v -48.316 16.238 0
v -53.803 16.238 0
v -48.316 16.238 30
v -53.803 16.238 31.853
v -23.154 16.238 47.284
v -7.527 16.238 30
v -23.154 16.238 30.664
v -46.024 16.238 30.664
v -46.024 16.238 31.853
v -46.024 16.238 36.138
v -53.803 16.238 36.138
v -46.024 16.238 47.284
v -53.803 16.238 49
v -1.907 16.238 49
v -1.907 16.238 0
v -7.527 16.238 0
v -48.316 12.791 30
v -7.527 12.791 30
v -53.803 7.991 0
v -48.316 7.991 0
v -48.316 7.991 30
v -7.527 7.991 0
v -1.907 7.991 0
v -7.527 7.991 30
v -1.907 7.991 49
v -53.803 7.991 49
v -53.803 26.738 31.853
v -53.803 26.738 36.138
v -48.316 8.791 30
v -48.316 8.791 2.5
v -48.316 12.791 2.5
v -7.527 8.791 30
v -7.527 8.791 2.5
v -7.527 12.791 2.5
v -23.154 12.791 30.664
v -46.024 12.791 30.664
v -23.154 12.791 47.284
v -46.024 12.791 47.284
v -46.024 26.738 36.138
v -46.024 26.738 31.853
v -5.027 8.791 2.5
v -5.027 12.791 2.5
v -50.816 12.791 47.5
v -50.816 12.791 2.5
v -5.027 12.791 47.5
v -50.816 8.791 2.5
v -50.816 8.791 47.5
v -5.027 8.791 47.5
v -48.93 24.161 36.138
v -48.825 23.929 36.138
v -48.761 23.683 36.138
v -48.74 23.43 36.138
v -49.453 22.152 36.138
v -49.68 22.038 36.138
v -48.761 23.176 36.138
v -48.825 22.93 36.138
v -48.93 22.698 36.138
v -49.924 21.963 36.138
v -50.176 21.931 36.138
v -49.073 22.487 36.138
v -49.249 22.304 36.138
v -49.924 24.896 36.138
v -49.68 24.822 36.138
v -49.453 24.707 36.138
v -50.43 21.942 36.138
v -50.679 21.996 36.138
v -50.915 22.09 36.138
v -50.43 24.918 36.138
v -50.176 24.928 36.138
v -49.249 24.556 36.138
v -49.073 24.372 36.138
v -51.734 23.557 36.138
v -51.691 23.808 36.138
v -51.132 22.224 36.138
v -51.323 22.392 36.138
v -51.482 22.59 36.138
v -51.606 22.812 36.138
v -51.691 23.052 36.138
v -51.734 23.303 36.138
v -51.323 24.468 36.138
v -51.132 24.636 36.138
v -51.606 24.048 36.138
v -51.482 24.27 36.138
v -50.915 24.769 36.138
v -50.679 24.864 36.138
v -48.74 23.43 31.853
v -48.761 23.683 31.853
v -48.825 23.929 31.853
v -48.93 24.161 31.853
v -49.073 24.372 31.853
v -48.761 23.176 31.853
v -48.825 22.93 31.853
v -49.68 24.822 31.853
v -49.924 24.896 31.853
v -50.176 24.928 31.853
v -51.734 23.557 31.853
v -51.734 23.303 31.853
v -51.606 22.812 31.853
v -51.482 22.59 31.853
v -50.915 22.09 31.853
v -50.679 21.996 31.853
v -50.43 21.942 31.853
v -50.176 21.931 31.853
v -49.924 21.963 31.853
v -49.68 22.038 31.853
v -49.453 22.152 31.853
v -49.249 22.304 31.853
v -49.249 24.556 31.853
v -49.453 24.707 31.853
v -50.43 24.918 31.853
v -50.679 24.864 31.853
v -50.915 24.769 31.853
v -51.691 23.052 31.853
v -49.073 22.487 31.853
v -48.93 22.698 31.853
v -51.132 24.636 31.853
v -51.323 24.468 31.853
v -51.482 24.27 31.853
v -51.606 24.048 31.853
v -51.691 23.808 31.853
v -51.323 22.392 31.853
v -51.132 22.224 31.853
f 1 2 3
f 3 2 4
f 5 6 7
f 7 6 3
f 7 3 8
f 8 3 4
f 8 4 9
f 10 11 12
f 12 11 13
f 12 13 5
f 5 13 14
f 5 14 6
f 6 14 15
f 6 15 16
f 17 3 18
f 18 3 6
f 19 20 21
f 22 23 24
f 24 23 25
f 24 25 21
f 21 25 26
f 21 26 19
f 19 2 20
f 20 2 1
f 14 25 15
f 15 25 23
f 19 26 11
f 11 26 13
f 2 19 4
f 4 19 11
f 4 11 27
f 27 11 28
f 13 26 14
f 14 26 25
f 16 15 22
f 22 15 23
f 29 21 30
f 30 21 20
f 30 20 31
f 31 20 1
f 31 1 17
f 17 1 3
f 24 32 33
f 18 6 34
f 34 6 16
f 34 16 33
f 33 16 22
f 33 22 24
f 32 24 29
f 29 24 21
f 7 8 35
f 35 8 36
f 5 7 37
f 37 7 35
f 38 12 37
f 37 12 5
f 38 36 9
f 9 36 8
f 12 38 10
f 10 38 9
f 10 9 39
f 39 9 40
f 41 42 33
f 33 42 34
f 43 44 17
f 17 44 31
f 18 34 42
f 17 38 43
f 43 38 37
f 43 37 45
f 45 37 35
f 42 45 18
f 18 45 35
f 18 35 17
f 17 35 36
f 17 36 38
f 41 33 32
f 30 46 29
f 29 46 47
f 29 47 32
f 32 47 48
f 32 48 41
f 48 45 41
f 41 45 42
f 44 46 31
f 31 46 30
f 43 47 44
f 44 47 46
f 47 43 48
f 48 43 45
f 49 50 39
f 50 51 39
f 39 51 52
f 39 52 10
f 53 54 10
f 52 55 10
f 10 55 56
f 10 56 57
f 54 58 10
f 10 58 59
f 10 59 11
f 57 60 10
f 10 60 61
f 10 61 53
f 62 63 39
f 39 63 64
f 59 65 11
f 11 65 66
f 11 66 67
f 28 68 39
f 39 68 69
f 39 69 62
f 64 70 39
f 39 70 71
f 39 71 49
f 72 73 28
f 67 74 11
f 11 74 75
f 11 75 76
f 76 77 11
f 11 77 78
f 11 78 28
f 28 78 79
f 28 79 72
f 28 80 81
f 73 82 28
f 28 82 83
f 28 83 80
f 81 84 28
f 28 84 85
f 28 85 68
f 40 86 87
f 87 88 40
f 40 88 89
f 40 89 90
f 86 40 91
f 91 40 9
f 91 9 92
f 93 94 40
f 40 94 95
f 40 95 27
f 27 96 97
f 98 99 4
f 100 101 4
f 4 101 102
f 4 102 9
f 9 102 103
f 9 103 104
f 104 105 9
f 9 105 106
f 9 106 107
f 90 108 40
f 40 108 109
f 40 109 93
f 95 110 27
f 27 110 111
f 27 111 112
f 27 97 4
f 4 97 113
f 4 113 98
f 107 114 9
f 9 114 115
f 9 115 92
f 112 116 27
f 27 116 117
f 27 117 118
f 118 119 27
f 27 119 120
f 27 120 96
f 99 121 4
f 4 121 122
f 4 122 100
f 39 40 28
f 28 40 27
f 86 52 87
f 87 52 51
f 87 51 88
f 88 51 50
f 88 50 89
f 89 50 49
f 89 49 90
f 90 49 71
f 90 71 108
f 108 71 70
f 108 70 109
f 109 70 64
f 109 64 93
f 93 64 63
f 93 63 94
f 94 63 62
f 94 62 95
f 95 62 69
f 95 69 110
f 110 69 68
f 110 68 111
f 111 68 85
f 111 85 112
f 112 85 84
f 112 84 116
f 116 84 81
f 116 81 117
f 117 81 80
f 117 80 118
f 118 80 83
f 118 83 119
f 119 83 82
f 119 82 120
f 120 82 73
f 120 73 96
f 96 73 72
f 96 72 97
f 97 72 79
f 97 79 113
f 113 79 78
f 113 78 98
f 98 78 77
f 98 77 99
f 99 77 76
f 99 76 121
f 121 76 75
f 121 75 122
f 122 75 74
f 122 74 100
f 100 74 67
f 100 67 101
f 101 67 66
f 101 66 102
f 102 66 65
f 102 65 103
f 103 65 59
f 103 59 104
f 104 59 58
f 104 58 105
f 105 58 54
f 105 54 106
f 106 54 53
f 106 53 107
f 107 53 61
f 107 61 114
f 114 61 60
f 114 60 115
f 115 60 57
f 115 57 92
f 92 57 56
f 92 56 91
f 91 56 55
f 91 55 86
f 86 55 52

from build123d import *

# Parameters (mm, degrees)
SKETCH2_W           = 51.895920804
SKETCH2_H           = 8.246585089
BOSS_EXTRUDE1_DEPTH = 49
SKETCH3_W           = 40.788974389
SKETCH3_H           = 8.246585089
CUT_EXTRUDE1_DEPTH  = 30
SKETCH4_W           = 22.869815576
SKETCH4_H           = 16.619980412
CUT_EXTRUDE2_DEPTH  = 6
SKETCH5_W           = 27.5
SKETCH5_H           = 4
CUT_EXTRUDE3_DEPTH  = 2.5
SKETCH12_W          = 27.5
SKETCH12_H          = 4
CUT_EXTRUDE6_DEPTH  = 2.5
SKETCH15_W          = 45.788974389
SKETCH15_H          = 4
CUT_EXTRUDE7_DEPTH  = 17.5
SKETCH17_W          = 7.778908367
SKETCH17_H          = 4.284963324
BOSS_EXTRUDE2_DEPTH = 10.5
SKETCH18_R          = 1.5
CUT_EXTRUDE8_DEPTH  = 5


with BuildPart() as part:
    # Sketch2 → Boss-Extrude1 (new body)
    with BuildSketch(Plane.XY):
        with Locations((-27.854725768, 12.114483507)):
            Rectangle(SKETCH2_W, SKETCH2_H)
    extrude(amount=BOSS_EXTRUDE1_DEPTH)

    # Sketch3 → Cut-Extrude1 (cut)
    with BuildSketch(Plane(origin=(0, 0, 0), x_dir=(-1, 0, 0), z_dir=(0, 0, -1))):
        with Locations((27.921471274, 12.114483507)):
            Rectangle(SKETCH3_W, SKETCH3_H)
    extrude(amount=-CUT_EXTRUDE1_DEPTH, mode=Mode.SUBTRACT)

    # Sketch4 → Cut-Extrude2 (cut)
    with BuildSketch(Plane(origin=(0, 16.237776051, 0), x_dir=(1, 0, 0), z_dir=(0, 1, 0))):
        with Locations((-34.588870015, -38.97443395)):
            Rectangle(SKETCH4_W, SKETCH4_H)
    extrude(amount=-CUT_EXTRUDE2_DEPTH, mode=Mode.SUBTRACT)

    # Sketch5 → Cut-Extrude3 (cut)
    with BuildSketch(Plane.ZY.offset(7.52698408)):
        with Locations((16.25, 10.791190962)):
            Rectangle(SKETCH5_W, SKETCH5_H)
    extrude(amount=-CUT_EXTRUDE3_DEPTH, mode=Mode.SUBTRACT)

    # Sketch12 → Cut-Extrude6 (cut)
    with BuildSketch(Plane(origin=(-48.315958469, 0, 0), x_dir=(0, 0, -1), z_dir=(1, 0, 0))):
        with Locations((-16.25, 10.791190962)):
            Rectangle(SKETCH12_W, SKETCH12_H)
    extrude(amount=-CUT_EXTRUDE6_DEPTH, mode=Mode.SUBTRACT)

    # Sketch15 → Cut-Extrude7 (cut)
    with BuildSketch(Plane(origin=(0, 0, 30), x_dir=(-1, 0, 0), z_dir=(0, 0, -1))):
        with Locations((27.921471274, 10.791190962)):
            Rectangle(SKETCH15_W, SKETCH15_H)
    extrude(amount=-CUT_EXTRUDE7_DEPTH, mode=Mode.SUBTRACT)

    # Sketch17 → Boss-Extrude2 (add)
    with BuildSketch(Plane(origin=(0, 16.237776051, 0), x_dir=(1, 0, 0), z_dir=(0, 1, 0))):
        with Locations((-49.913231987, -33.995977251)):
            Rectangle(SKETCH17_W, SKETCH17_H)
    extrude(amount=BOSS_EXTRUDE2_DEPTH)

    # Sketch18 → Cut-Extrude8 (cut)
    with BuildSketch(Plane.XY.offset(36.138458913)):
        with Locations((-50.239621596, 23.429782287)):
            Circle(SKETCH18_R)
    extrude(amount=-CUT_EXTRUDE8_DEPTH, mode=Mode.SUBTRACT)


solid = part.part
